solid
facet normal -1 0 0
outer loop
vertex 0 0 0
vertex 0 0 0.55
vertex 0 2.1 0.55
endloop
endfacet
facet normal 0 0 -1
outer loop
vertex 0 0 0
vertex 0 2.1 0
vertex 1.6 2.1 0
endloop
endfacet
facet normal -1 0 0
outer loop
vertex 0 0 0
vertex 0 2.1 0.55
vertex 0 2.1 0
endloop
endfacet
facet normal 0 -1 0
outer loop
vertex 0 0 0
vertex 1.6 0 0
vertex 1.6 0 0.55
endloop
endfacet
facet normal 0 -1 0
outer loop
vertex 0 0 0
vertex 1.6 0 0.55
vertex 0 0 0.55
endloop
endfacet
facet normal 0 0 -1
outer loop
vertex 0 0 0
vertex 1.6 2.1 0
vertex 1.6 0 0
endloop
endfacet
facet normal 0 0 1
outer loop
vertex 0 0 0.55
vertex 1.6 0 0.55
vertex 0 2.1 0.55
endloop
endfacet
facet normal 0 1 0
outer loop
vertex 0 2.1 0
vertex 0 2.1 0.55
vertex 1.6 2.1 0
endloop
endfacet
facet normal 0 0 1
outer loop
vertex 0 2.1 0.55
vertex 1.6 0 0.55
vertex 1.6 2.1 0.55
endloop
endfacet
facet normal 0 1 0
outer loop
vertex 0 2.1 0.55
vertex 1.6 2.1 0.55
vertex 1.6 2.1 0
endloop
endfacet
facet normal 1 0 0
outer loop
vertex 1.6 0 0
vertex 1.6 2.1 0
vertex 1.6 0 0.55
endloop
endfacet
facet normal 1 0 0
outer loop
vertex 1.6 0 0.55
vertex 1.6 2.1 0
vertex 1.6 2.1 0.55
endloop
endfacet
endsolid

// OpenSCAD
/* Warning, this is a very basic generator with a lot of approximation 
input data : [UQFN, 3VX, 1.6x2.1x0.55mm, 10, , A, C04-00379A]
generated by com.zoubworld.electronics.cad.model3d.Basic
Date : Sun Feb 15 10:50:48 CET 2026
*/

//body
color("black")
translate([0,0,0])
cube([1.6,2.1,0.55], center=false);
